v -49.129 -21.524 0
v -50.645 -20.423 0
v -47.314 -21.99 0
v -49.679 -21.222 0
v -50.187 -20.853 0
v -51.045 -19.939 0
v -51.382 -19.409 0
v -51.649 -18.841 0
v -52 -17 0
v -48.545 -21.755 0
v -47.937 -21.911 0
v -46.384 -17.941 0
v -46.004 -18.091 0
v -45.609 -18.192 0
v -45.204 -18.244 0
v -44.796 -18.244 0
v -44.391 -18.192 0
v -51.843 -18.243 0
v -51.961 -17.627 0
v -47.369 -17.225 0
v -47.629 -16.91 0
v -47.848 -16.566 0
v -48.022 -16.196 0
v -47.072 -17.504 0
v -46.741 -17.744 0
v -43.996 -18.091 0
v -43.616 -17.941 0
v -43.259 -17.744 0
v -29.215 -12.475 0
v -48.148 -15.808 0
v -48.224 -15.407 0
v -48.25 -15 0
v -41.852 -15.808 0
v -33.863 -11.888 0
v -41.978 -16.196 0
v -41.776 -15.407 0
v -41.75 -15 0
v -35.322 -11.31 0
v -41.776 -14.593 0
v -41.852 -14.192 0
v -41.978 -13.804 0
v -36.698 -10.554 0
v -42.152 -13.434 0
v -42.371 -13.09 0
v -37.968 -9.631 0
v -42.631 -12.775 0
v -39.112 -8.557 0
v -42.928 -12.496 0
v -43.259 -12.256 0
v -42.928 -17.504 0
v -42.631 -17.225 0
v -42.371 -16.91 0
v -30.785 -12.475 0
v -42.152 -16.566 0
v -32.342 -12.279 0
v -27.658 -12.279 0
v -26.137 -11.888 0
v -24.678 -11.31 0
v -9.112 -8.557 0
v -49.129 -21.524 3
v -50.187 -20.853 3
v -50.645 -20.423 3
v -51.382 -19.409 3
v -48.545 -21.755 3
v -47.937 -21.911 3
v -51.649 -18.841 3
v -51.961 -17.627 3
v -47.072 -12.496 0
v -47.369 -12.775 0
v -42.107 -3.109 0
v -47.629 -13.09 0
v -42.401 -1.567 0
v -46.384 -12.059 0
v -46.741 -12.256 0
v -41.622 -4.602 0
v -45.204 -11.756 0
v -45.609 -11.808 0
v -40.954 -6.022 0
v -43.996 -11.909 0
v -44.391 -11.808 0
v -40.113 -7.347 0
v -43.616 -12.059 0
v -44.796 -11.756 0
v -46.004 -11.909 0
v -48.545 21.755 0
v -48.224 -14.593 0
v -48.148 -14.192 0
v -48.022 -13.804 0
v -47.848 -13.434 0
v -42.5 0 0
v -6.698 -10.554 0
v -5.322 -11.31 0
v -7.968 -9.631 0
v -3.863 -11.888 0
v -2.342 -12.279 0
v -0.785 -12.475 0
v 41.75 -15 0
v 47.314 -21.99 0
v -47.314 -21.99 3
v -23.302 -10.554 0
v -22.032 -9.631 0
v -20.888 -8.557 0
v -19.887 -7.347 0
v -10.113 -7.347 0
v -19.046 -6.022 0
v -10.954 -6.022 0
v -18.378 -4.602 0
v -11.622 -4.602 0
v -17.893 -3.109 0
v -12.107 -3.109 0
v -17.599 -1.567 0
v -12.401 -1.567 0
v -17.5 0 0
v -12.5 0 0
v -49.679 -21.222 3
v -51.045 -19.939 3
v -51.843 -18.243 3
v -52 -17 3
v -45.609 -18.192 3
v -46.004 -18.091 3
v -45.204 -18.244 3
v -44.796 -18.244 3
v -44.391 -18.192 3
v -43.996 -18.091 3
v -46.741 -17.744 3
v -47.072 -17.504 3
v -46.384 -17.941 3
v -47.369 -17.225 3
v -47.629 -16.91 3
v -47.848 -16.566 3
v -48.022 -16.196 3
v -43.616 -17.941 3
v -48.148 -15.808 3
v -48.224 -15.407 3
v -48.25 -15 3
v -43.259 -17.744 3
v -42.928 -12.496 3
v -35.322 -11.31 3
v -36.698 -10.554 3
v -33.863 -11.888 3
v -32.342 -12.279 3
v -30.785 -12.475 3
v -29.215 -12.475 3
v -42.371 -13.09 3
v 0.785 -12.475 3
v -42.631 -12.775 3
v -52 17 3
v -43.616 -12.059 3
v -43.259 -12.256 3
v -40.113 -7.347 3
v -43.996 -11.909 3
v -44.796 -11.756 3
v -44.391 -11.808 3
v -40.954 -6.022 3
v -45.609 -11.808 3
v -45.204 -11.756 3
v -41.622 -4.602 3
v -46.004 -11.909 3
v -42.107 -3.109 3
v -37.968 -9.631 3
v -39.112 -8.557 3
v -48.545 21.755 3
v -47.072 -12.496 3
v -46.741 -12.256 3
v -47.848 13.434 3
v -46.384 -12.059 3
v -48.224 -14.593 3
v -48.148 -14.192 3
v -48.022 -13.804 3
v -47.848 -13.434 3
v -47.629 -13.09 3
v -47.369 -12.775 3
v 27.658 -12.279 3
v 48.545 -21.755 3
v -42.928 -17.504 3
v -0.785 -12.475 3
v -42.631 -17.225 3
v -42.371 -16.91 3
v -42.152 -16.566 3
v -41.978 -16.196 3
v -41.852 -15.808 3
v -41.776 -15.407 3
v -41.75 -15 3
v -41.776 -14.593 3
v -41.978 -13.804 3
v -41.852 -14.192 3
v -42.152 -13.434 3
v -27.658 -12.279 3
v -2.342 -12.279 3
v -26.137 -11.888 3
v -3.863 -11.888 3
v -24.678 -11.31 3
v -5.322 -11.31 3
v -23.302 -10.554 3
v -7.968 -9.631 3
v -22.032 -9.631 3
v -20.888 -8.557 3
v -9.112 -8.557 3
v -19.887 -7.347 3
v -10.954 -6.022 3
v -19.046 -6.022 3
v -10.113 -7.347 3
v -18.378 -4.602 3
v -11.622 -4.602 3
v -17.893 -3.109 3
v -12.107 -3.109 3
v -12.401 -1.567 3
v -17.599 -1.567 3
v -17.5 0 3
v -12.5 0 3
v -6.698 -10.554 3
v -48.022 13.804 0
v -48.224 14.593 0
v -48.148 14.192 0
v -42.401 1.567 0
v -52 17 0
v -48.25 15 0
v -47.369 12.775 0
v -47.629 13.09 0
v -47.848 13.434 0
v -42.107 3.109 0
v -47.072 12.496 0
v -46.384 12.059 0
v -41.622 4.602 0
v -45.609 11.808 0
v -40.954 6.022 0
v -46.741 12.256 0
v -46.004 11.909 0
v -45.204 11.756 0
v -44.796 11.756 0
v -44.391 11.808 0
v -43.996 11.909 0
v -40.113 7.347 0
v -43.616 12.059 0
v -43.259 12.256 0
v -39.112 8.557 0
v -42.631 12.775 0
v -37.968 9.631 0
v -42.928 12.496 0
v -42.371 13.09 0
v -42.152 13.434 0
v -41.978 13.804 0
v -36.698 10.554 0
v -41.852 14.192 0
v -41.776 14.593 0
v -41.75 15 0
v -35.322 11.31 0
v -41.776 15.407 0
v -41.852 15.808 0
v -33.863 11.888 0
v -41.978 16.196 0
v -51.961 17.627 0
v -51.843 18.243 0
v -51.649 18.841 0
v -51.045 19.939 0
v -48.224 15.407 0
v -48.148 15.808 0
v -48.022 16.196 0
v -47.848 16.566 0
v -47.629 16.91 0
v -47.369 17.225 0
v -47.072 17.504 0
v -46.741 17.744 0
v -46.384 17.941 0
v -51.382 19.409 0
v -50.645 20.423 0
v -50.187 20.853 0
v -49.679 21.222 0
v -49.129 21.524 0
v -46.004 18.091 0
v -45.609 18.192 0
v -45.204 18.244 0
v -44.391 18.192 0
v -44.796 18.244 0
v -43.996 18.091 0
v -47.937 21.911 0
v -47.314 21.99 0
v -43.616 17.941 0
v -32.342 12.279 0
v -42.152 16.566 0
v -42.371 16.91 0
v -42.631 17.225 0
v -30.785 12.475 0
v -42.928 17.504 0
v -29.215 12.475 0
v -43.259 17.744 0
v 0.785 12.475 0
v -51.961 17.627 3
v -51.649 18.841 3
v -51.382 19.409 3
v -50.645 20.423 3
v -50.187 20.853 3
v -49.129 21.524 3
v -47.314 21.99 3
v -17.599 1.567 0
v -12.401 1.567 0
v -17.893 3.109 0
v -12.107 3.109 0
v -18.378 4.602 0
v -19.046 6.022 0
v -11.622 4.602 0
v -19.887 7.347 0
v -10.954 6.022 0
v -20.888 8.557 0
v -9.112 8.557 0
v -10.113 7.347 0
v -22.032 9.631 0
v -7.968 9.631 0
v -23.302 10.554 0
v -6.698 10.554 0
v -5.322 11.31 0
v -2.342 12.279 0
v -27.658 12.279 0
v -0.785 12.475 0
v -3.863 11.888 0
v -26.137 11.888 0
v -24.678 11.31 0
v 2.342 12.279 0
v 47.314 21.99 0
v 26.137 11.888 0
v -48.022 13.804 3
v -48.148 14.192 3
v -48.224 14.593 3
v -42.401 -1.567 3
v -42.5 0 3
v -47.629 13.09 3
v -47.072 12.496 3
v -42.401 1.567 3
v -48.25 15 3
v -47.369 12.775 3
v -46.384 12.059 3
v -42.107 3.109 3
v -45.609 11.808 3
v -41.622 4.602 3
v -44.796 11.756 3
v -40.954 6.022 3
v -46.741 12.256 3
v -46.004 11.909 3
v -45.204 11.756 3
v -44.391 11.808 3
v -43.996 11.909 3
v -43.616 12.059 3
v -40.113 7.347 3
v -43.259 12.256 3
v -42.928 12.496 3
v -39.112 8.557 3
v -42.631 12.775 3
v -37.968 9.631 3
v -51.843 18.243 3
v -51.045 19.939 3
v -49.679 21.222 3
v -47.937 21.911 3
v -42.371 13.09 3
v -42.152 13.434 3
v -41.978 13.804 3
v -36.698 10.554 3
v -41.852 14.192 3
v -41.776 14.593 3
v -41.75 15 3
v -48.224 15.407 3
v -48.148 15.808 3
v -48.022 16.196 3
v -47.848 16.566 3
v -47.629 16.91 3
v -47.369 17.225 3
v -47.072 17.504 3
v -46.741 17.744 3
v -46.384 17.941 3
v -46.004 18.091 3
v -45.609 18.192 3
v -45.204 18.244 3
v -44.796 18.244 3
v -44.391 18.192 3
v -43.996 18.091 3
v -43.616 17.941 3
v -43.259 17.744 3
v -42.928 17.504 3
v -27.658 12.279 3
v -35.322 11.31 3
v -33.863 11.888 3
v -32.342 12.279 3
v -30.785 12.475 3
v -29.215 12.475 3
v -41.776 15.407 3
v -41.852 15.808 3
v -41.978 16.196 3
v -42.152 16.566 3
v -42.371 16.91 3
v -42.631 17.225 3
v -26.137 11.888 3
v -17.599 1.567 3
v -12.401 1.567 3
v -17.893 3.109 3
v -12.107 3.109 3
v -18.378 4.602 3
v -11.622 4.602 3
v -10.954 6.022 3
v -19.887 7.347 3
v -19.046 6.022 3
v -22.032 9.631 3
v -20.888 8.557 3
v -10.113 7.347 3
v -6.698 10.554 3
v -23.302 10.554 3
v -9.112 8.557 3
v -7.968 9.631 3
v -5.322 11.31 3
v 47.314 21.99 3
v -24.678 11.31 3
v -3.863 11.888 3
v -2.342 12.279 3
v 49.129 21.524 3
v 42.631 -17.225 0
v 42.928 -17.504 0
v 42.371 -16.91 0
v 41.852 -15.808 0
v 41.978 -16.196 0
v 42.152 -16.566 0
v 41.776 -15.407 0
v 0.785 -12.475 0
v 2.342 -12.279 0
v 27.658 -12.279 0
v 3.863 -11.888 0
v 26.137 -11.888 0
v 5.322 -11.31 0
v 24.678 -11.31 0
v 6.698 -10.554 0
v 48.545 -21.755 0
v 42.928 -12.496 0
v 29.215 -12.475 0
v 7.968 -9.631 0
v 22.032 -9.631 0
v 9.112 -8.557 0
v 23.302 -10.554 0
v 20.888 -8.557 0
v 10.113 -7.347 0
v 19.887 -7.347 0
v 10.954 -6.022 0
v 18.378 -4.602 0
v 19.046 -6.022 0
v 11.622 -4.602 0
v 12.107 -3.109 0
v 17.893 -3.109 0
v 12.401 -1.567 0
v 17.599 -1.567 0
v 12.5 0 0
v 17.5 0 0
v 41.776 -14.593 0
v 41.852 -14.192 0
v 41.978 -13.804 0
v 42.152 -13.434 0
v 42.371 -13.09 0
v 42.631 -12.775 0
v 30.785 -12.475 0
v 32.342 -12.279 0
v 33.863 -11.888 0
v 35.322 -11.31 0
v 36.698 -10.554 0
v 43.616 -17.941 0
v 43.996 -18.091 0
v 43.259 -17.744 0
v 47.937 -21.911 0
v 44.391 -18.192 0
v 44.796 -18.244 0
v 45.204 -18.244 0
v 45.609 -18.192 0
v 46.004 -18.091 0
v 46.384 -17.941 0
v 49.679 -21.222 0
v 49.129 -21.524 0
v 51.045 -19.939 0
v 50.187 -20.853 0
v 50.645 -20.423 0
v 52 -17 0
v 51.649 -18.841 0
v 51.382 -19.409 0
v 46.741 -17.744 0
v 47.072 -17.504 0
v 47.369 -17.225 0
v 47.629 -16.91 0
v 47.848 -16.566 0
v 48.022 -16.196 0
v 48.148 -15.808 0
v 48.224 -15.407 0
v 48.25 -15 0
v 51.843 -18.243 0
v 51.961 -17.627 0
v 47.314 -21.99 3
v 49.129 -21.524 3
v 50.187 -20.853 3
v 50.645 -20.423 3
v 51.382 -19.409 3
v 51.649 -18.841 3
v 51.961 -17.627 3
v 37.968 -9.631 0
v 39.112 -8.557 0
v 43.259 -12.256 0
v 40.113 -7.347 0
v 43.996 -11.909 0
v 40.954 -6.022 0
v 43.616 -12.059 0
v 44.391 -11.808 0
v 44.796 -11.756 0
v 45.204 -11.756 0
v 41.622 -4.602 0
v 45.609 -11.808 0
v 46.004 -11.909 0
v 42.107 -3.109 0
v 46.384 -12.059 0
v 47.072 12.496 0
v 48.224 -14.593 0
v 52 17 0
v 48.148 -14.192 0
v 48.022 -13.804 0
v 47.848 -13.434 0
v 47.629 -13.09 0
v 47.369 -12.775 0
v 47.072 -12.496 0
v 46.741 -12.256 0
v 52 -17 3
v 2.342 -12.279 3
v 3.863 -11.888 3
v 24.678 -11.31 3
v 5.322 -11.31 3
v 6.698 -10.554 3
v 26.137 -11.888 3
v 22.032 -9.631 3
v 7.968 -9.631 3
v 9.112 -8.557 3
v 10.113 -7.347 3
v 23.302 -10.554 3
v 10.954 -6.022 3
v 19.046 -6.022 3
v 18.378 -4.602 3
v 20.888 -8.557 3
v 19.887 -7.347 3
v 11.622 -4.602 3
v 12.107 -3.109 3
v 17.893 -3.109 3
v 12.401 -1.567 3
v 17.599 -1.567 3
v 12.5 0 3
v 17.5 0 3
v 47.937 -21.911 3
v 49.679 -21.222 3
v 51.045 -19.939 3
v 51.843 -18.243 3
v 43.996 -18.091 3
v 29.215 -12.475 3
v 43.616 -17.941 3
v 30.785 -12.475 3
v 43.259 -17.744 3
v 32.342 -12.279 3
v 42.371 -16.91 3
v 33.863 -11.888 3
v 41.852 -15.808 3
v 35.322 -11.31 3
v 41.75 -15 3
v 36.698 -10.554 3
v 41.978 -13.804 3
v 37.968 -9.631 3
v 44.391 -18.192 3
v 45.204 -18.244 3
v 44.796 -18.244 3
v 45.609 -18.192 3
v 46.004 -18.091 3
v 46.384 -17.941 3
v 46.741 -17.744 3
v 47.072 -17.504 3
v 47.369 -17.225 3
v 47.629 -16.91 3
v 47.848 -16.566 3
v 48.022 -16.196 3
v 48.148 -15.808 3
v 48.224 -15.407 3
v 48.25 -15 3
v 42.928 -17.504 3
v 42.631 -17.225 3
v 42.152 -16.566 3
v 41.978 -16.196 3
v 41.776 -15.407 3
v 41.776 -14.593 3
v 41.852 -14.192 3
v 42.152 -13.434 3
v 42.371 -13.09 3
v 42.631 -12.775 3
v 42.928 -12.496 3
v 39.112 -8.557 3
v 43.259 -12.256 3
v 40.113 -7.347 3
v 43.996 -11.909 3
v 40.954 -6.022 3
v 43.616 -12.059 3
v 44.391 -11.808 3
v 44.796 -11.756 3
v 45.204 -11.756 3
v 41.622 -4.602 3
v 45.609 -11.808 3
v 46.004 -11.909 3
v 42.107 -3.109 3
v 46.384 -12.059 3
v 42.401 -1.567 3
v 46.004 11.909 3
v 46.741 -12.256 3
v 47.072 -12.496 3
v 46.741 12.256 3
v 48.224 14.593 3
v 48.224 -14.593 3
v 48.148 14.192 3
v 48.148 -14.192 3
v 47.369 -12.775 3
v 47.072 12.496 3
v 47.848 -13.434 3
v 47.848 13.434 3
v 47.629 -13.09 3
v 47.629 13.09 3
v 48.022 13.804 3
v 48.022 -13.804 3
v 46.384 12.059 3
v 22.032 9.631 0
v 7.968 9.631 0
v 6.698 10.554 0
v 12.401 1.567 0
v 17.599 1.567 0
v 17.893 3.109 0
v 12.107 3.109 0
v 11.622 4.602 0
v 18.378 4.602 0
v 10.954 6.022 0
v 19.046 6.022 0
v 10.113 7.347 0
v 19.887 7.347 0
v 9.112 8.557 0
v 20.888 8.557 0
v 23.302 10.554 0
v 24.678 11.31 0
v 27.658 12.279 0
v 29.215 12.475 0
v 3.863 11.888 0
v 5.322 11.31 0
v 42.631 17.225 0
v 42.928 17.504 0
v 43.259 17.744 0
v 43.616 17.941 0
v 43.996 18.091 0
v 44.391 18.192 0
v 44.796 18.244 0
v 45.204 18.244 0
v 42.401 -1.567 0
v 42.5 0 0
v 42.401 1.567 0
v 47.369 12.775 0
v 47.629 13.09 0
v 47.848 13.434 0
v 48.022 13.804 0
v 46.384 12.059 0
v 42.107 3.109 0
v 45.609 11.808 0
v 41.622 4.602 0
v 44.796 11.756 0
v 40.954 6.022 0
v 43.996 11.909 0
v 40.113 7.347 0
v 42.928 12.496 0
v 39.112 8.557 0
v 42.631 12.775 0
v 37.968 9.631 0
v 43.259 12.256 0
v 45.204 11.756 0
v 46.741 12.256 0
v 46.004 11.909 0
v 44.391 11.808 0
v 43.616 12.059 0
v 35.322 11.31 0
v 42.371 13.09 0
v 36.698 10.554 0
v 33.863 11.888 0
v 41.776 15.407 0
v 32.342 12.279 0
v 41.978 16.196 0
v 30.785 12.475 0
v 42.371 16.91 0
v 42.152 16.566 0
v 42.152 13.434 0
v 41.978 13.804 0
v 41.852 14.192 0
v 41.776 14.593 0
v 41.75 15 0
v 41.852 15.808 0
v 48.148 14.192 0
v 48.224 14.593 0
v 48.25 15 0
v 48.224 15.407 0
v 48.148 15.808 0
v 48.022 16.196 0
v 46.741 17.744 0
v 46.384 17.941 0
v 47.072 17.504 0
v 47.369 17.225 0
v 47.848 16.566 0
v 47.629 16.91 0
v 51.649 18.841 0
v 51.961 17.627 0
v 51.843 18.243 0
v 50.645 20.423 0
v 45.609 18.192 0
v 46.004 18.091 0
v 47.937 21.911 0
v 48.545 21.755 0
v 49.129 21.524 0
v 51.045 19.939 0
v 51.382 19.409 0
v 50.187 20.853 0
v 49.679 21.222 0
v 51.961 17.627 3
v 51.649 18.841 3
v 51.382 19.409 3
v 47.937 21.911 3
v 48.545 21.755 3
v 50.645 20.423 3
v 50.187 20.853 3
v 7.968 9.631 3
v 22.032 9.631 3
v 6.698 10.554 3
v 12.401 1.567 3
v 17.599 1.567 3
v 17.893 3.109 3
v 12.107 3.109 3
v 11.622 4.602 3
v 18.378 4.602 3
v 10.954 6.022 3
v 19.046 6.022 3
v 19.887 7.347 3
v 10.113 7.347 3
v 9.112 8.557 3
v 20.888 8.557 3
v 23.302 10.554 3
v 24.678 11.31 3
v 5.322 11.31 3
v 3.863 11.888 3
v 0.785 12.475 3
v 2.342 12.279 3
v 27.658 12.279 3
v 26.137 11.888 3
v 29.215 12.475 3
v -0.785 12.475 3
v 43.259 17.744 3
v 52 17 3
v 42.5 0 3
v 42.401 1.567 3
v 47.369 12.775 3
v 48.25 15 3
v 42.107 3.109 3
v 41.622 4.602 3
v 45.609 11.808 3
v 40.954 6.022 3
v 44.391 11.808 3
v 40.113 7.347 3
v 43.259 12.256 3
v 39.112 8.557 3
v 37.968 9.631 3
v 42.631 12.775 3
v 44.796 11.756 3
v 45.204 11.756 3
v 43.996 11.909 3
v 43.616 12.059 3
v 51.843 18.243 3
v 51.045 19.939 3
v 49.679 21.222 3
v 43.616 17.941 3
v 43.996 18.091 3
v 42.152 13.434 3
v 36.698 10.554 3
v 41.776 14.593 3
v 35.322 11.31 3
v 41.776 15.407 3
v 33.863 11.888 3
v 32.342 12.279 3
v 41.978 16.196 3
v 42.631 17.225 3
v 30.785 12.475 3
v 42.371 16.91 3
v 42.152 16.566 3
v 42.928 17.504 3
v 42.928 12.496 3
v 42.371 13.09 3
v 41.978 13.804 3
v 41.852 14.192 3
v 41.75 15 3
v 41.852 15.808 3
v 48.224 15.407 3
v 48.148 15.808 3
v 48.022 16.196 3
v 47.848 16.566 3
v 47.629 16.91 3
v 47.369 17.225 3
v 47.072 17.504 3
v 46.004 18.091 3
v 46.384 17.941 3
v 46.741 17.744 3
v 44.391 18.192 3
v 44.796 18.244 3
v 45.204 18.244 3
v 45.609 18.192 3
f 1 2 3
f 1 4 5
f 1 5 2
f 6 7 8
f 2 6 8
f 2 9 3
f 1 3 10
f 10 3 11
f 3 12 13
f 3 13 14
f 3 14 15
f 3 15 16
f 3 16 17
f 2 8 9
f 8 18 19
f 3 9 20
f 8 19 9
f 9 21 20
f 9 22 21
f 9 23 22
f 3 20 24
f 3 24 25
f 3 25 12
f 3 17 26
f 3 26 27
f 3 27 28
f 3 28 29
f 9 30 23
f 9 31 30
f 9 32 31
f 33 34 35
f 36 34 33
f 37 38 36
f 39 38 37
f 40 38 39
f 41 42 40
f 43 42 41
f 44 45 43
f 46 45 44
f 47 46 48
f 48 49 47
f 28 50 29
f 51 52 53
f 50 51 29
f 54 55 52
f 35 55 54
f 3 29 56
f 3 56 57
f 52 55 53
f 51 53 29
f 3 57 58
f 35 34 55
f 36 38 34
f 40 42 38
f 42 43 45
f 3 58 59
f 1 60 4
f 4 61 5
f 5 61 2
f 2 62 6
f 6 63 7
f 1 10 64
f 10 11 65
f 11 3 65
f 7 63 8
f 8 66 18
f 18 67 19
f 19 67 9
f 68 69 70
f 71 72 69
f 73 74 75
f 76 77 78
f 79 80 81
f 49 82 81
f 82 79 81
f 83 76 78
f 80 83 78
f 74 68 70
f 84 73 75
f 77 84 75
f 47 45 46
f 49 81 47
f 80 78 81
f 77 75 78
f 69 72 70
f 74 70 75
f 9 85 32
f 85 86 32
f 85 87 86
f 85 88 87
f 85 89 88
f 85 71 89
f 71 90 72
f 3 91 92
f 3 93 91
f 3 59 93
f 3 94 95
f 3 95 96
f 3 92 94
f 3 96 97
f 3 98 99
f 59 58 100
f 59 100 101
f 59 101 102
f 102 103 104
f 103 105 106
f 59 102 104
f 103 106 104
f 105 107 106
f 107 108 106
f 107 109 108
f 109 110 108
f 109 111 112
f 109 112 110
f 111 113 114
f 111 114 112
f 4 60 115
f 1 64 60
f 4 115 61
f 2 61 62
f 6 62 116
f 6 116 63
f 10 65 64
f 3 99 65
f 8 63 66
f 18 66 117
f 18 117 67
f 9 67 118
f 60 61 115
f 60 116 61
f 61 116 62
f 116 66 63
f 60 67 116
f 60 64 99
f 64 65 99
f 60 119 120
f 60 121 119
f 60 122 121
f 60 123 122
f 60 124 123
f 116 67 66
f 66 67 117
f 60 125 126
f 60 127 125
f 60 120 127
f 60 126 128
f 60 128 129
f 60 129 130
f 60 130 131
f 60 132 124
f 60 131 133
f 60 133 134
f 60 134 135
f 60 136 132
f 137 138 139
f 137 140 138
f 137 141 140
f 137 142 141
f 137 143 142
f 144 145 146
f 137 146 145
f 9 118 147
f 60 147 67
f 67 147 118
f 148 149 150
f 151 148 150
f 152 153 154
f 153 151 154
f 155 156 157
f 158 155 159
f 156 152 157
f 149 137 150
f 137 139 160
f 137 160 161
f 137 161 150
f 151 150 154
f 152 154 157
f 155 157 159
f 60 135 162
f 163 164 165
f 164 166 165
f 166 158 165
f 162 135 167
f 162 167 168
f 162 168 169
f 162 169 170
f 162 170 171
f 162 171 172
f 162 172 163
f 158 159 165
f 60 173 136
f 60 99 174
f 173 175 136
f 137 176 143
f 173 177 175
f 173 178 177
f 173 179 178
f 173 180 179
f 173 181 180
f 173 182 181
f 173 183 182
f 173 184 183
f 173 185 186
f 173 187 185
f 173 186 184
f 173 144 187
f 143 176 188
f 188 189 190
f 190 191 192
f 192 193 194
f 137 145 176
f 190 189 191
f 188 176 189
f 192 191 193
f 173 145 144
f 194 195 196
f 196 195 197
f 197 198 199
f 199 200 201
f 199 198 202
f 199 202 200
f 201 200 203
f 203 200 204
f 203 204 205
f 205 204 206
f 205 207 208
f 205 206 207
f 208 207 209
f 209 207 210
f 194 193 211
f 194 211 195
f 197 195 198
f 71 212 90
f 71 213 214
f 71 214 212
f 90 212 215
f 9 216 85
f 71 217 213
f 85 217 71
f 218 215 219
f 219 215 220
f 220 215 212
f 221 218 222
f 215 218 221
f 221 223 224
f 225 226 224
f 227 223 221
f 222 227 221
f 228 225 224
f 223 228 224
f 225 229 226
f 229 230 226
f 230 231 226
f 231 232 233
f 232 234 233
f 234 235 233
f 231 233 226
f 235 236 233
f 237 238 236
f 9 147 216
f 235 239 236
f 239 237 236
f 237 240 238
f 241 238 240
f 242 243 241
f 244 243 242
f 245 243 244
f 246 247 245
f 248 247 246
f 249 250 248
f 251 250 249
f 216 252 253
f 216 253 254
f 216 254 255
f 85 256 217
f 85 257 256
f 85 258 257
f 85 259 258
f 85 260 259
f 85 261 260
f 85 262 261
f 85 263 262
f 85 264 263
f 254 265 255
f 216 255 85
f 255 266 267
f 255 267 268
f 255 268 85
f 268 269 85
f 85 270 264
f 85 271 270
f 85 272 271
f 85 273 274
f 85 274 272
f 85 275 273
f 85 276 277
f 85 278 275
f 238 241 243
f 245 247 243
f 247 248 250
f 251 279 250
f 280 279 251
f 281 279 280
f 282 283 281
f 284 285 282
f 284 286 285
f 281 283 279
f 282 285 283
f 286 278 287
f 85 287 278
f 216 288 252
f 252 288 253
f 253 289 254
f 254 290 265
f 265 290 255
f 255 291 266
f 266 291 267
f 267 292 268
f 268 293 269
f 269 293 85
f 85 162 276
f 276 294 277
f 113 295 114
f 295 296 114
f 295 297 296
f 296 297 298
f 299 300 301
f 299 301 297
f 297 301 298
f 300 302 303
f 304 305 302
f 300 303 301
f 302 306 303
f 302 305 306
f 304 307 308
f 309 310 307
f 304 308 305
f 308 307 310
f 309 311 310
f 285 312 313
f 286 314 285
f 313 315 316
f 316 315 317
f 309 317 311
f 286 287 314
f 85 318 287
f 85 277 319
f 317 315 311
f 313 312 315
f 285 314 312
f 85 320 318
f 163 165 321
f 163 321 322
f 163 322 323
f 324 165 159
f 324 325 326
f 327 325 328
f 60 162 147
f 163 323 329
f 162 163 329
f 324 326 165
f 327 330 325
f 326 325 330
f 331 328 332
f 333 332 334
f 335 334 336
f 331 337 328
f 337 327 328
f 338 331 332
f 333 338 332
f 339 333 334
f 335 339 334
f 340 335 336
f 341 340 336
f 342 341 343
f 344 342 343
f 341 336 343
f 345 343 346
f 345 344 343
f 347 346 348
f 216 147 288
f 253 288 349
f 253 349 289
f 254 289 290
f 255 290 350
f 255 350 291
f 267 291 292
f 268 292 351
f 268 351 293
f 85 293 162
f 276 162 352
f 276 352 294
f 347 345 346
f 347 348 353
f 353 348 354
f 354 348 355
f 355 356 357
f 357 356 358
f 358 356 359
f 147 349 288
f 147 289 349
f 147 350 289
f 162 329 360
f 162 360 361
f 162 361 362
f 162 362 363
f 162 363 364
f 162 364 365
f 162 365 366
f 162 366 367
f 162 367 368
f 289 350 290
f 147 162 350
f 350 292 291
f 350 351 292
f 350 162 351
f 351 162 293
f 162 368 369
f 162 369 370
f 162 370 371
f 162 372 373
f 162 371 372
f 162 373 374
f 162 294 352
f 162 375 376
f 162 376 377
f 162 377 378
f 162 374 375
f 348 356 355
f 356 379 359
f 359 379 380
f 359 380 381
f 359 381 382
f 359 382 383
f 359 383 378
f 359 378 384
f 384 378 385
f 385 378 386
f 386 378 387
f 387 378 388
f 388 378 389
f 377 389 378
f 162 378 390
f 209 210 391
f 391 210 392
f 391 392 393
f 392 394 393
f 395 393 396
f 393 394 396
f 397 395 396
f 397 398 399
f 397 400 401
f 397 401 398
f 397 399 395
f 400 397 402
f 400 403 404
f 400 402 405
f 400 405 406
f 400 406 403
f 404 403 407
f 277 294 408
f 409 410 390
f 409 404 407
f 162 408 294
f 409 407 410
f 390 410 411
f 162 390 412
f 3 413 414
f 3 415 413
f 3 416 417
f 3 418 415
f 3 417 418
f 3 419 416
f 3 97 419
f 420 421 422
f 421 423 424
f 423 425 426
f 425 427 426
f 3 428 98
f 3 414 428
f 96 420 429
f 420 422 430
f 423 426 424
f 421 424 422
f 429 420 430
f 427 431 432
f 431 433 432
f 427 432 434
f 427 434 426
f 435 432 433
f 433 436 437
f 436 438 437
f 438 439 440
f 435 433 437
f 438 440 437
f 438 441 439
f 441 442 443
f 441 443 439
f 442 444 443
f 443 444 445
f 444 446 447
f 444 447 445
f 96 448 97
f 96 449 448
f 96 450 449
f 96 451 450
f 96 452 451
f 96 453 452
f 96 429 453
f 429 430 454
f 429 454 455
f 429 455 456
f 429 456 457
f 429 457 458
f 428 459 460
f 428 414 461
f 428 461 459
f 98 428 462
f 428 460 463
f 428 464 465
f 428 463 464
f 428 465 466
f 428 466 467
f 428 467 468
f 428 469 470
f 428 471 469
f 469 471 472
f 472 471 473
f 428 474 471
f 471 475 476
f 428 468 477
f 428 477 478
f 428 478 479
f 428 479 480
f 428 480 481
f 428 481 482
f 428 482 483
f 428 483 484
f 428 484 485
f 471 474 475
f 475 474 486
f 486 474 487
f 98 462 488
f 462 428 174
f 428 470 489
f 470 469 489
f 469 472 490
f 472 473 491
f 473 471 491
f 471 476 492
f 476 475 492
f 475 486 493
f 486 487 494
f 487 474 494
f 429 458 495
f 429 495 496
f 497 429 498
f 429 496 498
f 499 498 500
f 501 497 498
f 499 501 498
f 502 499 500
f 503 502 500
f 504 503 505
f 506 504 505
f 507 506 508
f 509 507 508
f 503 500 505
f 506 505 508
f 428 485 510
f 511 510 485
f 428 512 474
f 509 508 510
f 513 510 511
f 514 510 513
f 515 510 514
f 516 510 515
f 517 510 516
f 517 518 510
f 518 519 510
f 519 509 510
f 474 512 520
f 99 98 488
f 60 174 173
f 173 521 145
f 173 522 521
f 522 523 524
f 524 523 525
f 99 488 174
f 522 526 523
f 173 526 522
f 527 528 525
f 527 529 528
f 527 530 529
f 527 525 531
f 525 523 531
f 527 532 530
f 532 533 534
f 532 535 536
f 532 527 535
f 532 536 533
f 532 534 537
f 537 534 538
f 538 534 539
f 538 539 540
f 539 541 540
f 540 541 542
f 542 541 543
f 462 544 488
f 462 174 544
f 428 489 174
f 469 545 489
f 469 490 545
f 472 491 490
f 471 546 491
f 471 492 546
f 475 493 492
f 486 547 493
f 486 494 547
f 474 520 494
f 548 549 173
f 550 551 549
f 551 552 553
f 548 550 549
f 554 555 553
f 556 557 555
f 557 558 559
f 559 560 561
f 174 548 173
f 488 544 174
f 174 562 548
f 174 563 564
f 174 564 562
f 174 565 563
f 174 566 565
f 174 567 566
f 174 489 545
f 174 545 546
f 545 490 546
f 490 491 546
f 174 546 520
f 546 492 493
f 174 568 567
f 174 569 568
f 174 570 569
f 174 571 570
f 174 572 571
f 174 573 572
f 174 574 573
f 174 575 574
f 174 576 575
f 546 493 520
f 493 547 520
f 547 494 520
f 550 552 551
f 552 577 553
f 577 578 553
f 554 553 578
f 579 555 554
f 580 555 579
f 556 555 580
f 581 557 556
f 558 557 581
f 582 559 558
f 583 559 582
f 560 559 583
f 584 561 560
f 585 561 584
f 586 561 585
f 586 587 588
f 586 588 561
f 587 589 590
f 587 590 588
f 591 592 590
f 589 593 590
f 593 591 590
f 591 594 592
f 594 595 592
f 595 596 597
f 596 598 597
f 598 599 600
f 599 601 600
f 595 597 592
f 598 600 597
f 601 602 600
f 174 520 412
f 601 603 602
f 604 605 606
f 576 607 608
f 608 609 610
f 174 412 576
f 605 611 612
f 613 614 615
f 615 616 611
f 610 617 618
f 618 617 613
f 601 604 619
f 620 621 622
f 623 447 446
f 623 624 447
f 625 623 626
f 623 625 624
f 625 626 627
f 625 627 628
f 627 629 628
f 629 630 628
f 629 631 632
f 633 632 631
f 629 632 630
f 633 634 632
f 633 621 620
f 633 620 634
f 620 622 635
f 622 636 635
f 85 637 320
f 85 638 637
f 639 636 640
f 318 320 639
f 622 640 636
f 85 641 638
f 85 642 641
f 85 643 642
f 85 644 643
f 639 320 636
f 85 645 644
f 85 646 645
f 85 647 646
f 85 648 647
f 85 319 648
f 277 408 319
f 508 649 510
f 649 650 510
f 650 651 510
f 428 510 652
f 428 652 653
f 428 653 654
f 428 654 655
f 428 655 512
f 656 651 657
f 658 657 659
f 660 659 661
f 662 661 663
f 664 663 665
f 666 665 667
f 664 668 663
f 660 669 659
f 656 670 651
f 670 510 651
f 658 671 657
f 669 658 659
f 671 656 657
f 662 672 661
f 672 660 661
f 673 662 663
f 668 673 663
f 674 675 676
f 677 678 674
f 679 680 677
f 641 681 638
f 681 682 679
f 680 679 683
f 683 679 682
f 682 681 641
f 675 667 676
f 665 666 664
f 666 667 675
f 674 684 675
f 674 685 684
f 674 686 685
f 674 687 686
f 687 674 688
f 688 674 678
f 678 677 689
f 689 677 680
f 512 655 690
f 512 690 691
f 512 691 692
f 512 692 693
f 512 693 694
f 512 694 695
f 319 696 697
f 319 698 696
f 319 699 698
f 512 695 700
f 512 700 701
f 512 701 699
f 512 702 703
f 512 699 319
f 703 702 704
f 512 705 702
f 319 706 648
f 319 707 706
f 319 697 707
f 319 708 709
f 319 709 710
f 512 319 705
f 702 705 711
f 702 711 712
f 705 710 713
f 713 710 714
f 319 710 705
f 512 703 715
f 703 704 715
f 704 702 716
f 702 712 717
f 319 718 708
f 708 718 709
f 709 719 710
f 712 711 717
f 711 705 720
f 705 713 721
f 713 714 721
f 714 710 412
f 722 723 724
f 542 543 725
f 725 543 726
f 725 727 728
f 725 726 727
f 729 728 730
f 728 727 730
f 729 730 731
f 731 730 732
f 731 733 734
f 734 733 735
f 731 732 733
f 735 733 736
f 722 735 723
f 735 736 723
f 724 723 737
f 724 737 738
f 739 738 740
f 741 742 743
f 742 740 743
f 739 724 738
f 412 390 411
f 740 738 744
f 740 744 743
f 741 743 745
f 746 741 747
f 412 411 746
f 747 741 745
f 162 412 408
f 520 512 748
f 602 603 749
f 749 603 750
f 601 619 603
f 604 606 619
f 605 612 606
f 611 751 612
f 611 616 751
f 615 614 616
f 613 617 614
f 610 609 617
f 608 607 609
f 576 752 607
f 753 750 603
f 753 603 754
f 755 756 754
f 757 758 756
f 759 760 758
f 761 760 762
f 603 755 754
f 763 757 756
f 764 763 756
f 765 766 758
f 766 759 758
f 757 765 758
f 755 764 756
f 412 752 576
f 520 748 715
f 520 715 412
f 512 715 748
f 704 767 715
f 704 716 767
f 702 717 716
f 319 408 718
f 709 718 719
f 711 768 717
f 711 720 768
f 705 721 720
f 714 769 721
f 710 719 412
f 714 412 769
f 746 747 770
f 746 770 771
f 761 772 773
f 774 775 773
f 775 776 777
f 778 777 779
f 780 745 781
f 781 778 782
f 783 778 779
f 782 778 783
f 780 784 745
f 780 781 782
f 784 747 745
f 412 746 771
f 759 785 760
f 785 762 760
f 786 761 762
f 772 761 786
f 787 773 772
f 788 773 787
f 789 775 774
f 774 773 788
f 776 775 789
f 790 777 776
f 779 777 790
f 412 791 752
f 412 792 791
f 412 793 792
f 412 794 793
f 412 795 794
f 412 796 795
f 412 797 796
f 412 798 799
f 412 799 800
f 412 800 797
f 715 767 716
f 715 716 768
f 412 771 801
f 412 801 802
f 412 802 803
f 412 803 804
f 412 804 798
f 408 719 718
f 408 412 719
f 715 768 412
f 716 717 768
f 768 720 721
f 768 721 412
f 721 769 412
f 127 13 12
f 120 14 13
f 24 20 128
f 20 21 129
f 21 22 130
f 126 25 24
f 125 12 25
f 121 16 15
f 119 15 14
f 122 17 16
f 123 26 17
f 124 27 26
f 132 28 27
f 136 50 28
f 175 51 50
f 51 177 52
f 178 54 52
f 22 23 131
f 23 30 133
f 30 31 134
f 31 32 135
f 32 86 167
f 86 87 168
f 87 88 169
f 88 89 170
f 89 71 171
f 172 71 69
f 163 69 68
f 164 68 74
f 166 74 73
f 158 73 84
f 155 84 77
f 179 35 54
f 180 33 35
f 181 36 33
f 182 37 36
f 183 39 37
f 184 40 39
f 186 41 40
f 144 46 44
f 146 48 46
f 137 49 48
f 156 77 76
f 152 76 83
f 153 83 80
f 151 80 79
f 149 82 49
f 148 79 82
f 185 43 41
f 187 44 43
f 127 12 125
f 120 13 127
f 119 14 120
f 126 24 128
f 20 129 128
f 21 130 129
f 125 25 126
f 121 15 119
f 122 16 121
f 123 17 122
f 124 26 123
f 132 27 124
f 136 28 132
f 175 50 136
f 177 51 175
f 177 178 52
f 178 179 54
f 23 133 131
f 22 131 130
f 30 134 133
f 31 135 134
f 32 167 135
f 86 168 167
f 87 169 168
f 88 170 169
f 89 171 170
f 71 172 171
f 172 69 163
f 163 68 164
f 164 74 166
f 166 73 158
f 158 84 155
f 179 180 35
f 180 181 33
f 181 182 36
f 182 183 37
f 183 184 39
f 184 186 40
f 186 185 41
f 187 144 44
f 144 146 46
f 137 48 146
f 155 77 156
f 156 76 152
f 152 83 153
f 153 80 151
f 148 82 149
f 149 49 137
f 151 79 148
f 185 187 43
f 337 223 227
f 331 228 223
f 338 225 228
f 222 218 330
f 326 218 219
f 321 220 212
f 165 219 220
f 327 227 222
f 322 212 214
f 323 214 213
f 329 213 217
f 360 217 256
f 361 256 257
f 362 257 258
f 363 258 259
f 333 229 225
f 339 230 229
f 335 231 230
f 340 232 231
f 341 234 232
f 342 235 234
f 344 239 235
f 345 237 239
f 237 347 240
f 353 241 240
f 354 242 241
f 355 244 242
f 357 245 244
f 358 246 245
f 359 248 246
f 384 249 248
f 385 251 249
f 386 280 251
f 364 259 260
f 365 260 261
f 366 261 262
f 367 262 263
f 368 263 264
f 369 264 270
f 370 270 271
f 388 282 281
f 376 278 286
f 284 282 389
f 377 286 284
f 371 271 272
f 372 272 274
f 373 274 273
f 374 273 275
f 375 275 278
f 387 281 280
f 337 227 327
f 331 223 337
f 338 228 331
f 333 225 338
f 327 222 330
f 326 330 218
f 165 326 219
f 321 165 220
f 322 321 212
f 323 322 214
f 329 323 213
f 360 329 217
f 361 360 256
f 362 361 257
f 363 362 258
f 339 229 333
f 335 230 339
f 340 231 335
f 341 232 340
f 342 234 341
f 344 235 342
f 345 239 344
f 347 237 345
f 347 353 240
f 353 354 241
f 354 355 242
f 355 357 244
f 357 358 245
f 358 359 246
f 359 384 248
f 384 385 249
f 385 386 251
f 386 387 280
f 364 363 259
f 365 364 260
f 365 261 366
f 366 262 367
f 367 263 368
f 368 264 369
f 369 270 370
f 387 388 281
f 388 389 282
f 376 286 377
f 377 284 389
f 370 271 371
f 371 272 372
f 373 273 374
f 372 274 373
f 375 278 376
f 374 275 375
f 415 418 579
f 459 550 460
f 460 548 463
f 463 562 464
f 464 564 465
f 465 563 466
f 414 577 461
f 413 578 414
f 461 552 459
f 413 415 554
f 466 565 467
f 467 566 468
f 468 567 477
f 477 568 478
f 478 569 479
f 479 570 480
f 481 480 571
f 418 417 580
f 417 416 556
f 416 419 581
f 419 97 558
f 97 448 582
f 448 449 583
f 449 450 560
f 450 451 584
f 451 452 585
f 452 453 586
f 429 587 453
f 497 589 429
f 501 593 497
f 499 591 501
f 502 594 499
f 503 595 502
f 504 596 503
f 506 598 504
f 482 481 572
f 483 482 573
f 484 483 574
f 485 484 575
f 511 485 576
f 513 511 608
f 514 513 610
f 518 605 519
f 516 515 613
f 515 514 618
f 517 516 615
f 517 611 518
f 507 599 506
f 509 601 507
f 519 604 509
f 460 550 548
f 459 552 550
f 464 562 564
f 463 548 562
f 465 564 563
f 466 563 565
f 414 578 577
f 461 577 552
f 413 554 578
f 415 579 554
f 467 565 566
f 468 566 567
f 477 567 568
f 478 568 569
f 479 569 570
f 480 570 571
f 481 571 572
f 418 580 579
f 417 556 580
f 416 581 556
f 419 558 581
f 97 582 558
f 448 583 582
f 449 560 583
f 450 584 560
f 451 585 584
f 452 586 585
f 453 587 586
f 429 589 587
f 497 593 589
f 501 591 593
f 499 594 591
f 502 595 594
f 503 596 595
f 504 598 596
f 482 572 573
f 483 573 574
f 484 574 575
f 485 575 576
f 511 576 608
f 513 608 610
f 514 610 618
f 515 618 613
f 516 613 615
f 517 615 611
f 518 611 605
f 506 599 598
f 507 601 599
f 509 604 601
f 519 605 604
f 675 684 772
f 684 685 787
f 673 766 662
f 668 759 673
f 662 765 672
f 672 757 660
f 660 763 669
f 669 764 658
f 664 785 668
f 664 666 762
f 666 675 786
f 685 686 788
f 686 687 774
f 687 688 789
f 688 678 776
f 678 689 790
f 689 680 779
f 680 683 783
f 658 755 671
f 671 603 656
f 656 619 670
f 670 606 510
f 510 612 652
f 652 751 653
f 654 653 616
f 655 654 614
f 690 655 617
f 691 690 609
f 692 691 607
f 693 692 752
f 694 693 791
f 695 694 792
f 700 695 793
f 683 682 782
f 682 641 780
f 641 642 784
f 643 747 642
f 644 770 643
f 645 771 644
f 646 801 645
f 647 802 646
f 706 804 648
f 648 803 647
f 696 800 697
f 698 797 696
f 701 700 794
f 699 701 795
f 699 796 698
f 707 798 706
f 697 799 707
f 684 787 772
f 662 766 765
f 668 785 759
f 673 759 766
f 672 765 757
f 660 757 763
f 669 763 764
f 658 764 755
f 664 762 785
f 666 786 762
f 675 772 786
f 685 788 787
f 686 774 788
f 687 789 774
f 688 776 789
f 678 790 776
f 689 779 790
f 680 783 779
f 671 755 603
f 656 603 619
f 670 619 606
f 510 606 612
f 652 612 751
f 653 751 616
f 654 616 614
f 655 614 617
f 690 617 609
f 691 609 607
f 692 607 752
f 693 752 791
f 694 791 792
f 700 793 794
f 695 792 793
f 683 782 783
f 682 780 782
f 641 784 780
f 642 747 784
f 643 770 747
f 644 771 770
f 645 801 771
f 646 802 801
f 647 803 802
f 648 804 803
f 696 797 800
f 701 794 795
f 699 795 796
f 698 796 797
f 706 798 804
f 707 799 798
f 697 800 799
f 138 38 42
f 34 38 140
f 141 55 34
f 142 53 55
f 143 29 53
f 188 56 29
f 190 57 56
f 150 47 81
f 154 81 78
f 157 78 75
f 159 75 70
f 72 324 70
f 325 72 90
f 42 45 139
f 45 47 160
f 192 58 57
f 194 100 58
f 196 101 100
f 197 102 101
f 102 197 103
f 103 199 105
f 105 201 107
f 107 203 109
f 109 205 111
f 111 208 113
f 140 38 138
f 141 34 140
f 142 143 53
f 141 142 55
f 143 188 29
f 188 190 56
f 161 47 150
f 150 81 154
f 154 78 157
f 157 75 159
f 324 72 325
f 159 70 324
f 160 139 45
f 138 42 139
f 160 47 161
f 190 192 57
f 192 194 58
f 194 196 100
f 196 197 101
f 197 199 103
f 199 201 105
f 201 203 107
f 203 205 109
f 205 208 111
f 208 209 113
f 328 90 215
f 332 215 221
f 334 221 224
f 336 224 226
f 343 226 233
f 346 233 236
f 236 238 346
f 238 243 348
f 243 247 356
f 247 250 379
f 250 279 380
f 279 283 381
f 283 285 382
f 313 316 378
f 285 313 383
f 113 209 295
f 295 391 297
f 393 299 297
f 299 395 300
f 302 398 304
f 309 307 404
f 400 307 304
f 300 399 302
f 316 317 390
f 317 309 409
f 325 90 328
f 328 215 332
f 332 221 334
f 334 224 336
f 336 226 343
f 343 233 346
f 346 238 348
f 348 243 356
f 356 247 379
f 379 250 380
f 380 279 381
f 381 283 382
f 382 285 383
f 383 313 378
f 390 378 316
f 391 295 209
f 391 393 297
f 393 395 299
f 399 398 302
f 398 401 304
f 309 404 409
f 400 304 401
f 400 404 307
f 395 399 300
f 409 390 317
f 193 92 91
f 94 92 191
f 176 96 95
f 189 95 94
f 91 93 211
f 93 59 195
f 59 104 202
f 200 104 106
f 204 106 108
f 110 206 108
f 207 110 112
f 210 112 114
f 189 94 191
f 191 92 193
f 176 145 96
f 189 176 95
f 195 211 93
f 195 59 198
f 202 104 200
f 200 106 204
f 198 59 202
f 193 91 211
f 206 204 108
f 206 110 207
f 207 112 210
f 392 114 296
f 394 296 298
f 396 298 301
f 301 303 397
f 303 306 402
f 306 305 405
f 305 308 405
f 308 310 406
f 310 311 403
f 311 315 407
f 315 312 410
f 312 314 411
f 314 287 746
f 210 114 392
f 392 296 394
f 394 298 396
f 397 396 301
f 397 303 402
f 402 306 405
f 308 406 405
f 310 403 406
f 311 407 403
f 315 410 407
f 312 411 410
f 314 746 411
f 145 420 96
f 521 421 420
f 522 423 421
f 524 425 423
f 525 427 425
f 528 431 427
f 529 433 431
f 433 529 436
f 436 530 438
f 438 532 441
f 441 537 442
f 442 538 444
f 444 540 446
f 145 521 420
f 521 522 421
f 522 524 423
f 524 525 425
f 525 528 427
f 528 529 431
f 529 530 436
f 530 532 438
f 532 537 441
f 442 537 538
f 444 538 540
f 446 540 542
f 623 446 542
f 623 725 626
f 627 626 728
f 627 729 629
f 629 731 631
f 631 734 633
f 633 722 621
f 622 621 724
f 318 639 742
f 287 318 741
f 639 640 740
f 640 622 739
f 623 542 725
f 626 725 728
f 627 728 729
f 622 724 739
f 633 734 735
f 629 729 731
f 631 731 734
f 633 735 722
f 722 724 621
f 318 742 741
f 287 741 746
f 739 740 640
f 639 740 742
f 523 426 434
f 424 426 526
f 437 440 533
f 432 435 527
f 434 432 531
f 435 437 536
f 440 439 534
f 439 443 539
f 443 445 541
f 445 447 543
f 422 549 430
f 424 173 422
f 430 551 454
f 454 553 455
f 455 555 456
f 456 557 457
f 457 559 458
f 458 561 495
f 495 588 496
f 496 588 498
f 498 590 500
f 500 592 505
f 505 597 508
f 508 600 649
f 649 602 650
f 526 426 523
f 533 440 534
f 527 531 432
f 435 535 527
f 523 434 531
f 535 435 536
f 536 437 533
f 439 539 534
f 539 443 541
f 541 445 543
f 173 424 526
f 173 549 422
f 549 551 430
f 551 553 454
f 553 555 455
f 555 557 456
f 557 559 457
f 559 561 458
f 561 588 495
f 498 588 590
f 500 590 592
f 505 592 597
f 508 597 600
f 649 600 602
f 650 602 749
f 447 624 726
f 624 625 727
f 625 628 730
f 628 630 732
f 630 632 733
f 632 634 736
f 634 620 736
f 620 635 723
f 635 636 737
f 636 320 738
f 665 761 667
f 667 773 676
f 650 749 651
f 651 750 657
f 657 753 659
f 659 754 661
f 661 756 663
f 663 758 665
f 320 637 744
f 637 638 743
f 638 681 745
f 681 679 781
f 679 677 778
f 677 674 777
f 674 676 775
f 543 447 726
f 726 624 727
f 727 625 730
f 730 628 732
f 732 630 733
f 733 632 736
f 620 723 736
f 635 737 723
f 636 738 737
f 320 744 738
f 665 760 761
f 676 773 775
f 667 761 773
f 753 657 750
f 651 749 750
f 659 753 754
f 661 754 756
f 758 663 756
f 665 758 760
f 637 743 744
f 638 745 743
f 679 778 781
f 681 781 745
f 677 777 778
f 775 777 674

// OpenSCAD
$fn = 50;

difference() {
	union() {
		hull() {
			translate(v = [-47.0, 17.0, 0]) {
				cylinder(h = 3, r = 5);
			}
			translate(v = [47.0, 17.0, 0]) {
				cylinder(h = 3, r = 5);
			}
			translate(v = [-47.0, -17.0, 0]) {
				cylinder(h = 3, r = 5);
			}
			translate(v = [47.0, -17.0, 0]) {
				cylinder(h = 3, r = 5);
			}
		}
	}
	union() {
		translate(v = [-45.0, -15.0, -100.0]) {
			cylinder(h = 200, r = 3.25);
		}
		translate(v = [-45.0, 15.0, -100.0]) {
			cylinder(h = 200, r = 3.25);
		}
		translate(v = [45.0, -15.0, -100.0]) {
			cylinder(h = 200, r = 3.25);
		}
		translate(v = [45.0, 15.0, -100.0]) {
			cylinder(h = 200, r = 3.25);
		}
		translate(v = [-45.0, -15.0, -100.0]) {
			cylinder(h = 200, r = 1.8);
		}
		translate(v = [-45.0, 15.0, -100.0]) {
			cylinder(h = 200, r = 1.8);
		}
		translate(v = [45.0, -15.0, -100.0]) {
			cylinder(h = 200, r = 1.8);
		}
		translate(v = [45.0, 15.0, -100.0]) {
			cylinder(h = 200, r = 1.8);
		}
		translate(v = [-30.0, 0, 0.0]) {
			cylinder(h = 3, r = 12.5);
		}
		cylinder(h = 3, r = 12.5);
		translate(v = [30.0, 0, 0.0]) {
			cylinder(h = 3, r = 12.5);
		}
	}
}
